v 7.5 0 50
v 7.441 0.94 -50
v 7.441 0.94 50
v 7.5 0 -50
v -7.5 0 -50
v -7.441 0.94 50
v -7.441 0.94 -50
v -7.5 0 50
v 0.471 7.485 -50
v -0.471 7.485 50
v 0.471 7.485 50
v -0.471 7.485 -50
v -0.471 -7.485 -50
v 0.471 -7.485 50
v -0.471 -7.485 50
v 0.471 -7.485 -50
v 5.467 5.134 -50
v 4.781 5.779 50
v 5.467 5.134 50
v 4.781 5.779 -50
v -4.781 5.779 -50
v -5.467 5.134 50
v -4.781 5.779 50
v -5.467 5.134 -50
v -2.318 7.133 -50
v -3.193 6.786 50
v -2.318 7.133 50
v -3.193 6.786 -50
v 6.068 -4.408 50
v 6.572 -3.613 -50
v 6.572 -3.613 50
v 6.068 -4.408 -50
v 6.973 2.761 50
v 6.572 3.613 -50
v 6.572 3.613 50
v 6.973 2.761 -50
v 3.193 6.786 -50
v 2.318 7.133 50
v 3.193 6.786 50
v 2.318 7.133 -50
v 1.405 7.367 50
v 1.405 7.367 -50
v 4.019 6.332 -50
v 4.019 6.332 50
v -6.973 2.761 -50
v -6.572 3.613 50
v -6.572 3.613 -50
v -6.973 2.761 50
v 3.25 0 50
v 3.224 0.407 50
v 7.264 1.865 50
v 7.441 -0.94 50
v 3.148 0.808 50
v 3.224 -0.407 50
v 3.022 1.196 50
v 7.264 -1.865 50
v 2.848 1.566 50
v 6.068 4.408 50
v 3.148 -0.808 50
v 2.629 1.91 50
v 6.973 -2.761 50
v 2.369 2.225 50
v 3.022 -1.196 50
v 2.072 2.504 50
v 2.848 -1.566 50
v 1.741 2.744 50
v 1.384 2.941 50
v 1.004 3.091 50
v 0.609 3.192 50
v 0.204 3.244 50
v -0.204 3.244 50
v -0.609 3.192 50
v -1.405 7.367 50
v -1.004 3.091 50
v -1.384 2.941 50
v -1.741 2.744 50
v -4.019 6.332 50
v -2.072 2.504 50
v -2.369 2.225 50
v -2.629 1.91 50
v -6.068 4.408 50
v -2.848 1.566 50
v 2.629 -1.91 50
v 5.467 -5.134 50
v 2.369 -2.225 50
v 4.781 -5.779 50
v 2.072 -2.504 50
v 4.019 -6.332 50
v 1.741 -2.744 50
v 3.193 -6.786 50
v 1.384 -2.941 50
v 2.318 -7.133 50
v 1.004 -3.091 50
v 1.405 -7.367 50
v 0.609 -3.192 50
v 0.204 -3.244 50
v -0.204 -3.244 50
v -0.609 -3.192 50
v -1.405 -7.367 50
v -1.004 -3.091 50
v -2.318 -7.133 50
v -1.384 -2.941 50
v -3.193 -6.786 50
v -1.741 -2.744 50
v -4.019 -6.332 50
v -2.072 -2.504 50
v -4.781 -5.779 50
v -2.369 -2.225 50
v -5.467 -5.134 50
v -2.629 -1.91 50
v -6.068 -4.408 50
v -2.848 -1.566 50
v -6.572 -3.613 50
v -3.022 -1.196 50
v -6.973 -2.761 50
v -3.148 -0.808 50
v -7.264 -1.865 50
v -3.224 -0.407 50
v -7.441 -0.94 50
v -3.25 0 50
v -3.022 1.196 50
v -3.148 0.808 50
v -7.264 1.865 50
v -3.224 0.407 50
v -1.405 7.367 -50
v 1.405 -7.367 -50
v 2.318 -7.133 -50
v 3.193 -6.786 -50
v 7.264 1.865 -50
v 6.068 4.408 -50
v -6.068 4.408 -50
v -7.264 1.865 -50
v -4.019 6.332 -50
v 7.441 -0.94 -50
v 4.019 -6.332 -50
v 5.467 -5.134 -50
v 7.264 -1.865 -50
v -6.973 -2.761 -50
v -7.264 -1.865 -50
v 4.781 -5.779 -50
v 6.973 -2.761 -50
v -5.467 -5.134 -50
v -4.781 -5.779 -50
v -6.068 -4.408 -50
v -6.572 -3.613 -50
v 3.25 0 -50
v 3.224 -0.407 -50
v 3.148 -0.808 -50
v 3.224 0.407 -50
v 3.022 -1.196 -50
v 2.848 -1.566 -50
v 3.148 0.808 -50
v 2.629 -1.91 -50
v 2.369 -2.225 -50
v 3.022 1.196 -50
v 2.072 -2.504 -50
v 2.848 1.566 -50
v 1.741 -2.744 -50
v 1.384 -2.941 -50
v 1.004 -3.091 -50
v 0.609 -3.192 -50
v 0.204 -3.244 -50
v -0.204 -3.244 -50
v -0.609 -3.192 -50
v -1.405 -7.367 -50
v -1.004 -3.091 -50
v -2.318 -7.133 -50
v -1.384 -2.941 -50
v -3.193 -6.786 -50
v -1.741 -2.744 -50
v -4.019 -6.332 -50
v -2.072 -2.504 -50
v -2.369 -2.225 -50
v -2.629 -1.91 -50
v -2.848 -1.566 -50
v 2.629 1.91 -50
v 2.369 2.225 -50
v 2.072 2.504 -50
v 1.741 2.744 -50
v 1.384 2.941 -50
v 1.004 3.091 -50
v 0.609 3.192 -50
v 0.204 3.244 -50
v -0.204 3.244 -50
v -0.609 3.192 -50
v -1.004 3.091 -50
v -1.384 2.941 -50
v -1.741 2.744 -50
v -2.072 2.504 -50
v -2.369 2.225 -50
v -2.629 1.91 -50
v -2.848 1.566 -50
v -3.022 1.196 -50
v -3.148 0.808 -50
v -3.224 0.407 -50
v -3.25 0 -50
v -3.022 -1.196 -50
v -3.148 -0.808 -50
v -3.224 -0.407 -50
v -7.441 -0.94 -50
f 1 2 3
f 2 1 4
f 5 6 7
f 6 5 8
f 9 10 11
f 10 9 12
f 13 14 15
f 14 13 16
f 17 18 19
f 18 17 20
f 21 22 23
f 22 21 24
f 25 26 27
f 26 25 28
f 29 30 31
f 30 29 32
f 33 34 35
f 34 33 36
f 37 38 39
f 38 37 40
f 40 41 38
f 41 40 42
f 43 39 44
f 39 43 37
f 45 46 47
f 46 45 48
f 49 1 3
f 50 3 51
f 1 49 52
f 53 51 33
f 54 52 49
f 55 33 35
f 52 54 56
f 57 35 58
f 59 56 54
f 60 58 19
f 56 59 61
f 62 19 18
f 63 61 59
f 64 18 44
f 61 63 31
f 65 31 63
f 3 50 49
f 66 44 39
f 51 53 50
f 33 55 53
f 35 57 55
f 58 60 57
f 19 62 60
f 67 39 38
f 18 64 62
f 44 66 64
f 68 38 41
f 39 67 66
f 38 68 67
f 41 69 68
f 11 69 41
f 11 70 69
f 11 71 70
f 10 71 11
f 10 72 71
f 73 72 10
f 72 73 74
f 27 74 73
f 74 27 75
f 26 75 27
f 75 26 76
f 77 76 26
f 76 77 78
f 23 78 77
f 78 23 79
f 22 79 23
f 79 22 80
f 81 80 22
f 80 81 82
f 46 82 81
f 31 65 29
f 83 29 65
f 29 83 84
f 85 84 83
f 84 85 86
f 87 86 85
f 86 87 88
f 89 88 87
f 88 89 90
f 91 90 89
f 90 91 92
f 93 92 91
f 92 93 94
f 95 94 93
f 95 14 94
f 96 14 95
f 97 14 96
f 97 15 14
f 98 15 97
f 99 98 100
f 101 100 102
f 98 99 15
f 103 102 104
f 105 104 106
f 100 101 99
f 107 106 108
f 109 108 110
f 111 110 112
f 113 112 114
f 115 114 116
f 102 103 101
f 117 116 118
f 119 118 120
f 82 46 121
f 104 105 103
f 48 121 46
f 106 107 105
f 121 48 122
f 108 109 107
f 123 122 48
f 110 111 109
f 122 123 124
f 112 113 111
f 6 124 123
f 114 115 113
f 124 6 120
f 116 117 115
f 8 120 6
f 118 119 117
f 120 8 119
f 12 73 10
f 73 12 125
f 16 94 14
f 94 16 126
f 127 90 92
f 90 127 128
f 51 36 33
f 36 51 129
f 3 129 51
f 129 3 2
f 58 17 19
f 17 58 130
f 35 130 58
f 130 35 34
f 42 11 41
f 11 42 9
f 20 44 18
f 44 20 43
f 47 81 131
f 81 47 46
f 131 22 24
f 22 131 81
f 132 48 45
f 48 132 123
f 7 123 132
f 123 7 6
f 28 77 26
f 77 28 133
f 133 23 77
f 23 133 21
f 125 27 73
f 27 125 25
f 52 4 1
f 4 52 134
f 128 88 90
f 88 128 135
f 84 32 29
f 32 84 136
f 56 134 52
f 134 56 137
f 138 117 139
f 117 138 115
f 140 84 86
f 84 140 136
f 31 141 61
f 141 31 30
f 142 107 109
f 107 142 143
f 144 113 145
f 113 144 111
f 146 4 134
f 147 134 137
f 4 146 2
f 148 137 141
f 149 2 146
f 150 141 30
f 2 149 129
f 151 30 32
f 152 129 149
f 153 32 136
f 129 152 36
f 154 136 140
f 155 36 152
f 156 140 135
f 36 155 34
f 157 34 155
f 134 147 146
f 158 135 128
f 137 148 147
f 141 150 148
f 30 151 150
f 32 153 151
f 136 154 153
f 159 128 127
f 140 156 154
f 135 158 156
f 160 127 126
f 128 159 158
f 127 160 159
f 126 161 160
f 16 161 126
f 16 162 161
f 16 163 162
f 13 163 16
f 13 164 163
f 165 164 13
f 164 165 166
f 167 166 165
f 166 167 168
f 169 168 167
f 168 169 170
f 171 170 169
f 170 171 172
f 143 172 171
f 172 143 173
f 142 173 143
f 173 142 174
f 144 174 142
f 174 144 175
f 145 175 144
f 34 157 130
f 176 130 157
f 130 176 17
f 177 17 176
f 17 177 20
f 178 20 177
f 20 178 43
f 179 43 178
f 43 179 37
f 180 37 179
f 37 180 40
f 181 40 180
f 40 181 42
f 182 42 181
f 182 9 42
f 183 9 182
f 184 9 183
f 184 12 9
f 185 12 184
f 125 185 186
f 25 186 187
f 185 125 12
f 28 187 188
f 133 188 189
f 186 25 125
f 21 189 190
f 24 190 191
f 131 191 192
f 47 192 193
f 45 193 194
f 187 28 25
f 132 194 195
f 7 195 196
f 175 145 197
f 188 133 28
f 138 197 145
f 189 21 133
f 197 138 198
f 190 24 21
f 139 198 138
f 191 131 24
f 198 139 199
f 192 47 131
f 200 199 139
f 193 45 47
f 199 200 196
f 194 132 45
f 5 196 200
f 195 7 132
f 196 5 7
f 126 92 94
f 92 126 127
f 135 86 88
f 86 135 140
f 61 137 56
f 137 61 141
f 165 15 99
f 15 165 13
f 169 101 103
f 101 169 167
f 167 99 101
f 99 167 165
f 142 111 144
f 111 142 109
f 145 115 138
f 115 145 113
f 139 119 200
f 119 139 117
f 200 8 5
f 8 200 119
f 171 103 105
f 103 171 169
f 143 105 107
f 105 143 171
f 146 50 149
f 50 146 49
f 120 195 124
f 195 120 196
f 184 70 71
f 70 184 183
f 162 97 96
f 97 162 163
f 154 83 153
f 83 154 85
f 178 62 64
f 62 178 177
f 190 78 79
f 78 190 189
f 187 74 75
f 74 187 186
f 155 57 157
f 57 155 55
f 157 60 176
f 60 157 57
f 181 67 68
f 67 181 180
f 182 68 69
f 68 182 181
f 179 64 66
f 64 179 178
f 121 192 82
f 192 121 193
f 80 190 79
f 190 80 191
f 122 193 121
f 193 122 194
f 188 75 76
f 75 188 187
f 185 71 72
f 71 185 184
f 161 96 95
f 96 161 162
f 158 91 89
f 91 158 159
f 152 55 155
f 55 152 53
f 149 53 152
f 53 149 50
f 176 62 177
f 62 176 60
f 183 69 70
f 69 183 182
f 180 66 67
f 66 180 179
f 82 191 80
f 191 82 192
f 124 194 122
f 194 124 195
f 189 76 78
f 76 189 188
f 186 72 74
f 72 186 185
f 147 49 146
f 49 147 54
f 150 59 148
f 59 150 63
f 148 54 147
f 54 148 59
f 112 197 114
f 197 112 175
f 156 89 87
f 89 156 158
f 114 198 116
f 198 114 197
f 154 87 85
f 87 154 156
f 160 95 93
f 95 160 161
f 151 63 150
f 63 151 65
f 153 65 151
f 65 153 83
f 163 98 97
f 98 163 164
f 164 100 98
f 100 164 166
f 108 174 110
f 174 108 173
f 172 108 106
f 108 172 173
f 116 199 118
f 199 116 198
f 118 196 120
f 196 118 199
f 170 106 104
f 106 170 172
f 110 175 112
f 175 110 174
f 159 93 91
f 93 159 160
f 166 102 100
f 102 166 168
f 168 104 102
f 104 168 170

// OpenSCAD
$fn = 50;


difference() {
	union() {
		translate(v = [0, 0, -50.0000000000]) {
			cylinder(h = 100, r = 7.5000000000);
		}
	}
	union() {
		translate(v = [0, 0, -100.0000000000]) {
			cylinder(h = 200, r = 3.2500000000);
		}
	}
}
